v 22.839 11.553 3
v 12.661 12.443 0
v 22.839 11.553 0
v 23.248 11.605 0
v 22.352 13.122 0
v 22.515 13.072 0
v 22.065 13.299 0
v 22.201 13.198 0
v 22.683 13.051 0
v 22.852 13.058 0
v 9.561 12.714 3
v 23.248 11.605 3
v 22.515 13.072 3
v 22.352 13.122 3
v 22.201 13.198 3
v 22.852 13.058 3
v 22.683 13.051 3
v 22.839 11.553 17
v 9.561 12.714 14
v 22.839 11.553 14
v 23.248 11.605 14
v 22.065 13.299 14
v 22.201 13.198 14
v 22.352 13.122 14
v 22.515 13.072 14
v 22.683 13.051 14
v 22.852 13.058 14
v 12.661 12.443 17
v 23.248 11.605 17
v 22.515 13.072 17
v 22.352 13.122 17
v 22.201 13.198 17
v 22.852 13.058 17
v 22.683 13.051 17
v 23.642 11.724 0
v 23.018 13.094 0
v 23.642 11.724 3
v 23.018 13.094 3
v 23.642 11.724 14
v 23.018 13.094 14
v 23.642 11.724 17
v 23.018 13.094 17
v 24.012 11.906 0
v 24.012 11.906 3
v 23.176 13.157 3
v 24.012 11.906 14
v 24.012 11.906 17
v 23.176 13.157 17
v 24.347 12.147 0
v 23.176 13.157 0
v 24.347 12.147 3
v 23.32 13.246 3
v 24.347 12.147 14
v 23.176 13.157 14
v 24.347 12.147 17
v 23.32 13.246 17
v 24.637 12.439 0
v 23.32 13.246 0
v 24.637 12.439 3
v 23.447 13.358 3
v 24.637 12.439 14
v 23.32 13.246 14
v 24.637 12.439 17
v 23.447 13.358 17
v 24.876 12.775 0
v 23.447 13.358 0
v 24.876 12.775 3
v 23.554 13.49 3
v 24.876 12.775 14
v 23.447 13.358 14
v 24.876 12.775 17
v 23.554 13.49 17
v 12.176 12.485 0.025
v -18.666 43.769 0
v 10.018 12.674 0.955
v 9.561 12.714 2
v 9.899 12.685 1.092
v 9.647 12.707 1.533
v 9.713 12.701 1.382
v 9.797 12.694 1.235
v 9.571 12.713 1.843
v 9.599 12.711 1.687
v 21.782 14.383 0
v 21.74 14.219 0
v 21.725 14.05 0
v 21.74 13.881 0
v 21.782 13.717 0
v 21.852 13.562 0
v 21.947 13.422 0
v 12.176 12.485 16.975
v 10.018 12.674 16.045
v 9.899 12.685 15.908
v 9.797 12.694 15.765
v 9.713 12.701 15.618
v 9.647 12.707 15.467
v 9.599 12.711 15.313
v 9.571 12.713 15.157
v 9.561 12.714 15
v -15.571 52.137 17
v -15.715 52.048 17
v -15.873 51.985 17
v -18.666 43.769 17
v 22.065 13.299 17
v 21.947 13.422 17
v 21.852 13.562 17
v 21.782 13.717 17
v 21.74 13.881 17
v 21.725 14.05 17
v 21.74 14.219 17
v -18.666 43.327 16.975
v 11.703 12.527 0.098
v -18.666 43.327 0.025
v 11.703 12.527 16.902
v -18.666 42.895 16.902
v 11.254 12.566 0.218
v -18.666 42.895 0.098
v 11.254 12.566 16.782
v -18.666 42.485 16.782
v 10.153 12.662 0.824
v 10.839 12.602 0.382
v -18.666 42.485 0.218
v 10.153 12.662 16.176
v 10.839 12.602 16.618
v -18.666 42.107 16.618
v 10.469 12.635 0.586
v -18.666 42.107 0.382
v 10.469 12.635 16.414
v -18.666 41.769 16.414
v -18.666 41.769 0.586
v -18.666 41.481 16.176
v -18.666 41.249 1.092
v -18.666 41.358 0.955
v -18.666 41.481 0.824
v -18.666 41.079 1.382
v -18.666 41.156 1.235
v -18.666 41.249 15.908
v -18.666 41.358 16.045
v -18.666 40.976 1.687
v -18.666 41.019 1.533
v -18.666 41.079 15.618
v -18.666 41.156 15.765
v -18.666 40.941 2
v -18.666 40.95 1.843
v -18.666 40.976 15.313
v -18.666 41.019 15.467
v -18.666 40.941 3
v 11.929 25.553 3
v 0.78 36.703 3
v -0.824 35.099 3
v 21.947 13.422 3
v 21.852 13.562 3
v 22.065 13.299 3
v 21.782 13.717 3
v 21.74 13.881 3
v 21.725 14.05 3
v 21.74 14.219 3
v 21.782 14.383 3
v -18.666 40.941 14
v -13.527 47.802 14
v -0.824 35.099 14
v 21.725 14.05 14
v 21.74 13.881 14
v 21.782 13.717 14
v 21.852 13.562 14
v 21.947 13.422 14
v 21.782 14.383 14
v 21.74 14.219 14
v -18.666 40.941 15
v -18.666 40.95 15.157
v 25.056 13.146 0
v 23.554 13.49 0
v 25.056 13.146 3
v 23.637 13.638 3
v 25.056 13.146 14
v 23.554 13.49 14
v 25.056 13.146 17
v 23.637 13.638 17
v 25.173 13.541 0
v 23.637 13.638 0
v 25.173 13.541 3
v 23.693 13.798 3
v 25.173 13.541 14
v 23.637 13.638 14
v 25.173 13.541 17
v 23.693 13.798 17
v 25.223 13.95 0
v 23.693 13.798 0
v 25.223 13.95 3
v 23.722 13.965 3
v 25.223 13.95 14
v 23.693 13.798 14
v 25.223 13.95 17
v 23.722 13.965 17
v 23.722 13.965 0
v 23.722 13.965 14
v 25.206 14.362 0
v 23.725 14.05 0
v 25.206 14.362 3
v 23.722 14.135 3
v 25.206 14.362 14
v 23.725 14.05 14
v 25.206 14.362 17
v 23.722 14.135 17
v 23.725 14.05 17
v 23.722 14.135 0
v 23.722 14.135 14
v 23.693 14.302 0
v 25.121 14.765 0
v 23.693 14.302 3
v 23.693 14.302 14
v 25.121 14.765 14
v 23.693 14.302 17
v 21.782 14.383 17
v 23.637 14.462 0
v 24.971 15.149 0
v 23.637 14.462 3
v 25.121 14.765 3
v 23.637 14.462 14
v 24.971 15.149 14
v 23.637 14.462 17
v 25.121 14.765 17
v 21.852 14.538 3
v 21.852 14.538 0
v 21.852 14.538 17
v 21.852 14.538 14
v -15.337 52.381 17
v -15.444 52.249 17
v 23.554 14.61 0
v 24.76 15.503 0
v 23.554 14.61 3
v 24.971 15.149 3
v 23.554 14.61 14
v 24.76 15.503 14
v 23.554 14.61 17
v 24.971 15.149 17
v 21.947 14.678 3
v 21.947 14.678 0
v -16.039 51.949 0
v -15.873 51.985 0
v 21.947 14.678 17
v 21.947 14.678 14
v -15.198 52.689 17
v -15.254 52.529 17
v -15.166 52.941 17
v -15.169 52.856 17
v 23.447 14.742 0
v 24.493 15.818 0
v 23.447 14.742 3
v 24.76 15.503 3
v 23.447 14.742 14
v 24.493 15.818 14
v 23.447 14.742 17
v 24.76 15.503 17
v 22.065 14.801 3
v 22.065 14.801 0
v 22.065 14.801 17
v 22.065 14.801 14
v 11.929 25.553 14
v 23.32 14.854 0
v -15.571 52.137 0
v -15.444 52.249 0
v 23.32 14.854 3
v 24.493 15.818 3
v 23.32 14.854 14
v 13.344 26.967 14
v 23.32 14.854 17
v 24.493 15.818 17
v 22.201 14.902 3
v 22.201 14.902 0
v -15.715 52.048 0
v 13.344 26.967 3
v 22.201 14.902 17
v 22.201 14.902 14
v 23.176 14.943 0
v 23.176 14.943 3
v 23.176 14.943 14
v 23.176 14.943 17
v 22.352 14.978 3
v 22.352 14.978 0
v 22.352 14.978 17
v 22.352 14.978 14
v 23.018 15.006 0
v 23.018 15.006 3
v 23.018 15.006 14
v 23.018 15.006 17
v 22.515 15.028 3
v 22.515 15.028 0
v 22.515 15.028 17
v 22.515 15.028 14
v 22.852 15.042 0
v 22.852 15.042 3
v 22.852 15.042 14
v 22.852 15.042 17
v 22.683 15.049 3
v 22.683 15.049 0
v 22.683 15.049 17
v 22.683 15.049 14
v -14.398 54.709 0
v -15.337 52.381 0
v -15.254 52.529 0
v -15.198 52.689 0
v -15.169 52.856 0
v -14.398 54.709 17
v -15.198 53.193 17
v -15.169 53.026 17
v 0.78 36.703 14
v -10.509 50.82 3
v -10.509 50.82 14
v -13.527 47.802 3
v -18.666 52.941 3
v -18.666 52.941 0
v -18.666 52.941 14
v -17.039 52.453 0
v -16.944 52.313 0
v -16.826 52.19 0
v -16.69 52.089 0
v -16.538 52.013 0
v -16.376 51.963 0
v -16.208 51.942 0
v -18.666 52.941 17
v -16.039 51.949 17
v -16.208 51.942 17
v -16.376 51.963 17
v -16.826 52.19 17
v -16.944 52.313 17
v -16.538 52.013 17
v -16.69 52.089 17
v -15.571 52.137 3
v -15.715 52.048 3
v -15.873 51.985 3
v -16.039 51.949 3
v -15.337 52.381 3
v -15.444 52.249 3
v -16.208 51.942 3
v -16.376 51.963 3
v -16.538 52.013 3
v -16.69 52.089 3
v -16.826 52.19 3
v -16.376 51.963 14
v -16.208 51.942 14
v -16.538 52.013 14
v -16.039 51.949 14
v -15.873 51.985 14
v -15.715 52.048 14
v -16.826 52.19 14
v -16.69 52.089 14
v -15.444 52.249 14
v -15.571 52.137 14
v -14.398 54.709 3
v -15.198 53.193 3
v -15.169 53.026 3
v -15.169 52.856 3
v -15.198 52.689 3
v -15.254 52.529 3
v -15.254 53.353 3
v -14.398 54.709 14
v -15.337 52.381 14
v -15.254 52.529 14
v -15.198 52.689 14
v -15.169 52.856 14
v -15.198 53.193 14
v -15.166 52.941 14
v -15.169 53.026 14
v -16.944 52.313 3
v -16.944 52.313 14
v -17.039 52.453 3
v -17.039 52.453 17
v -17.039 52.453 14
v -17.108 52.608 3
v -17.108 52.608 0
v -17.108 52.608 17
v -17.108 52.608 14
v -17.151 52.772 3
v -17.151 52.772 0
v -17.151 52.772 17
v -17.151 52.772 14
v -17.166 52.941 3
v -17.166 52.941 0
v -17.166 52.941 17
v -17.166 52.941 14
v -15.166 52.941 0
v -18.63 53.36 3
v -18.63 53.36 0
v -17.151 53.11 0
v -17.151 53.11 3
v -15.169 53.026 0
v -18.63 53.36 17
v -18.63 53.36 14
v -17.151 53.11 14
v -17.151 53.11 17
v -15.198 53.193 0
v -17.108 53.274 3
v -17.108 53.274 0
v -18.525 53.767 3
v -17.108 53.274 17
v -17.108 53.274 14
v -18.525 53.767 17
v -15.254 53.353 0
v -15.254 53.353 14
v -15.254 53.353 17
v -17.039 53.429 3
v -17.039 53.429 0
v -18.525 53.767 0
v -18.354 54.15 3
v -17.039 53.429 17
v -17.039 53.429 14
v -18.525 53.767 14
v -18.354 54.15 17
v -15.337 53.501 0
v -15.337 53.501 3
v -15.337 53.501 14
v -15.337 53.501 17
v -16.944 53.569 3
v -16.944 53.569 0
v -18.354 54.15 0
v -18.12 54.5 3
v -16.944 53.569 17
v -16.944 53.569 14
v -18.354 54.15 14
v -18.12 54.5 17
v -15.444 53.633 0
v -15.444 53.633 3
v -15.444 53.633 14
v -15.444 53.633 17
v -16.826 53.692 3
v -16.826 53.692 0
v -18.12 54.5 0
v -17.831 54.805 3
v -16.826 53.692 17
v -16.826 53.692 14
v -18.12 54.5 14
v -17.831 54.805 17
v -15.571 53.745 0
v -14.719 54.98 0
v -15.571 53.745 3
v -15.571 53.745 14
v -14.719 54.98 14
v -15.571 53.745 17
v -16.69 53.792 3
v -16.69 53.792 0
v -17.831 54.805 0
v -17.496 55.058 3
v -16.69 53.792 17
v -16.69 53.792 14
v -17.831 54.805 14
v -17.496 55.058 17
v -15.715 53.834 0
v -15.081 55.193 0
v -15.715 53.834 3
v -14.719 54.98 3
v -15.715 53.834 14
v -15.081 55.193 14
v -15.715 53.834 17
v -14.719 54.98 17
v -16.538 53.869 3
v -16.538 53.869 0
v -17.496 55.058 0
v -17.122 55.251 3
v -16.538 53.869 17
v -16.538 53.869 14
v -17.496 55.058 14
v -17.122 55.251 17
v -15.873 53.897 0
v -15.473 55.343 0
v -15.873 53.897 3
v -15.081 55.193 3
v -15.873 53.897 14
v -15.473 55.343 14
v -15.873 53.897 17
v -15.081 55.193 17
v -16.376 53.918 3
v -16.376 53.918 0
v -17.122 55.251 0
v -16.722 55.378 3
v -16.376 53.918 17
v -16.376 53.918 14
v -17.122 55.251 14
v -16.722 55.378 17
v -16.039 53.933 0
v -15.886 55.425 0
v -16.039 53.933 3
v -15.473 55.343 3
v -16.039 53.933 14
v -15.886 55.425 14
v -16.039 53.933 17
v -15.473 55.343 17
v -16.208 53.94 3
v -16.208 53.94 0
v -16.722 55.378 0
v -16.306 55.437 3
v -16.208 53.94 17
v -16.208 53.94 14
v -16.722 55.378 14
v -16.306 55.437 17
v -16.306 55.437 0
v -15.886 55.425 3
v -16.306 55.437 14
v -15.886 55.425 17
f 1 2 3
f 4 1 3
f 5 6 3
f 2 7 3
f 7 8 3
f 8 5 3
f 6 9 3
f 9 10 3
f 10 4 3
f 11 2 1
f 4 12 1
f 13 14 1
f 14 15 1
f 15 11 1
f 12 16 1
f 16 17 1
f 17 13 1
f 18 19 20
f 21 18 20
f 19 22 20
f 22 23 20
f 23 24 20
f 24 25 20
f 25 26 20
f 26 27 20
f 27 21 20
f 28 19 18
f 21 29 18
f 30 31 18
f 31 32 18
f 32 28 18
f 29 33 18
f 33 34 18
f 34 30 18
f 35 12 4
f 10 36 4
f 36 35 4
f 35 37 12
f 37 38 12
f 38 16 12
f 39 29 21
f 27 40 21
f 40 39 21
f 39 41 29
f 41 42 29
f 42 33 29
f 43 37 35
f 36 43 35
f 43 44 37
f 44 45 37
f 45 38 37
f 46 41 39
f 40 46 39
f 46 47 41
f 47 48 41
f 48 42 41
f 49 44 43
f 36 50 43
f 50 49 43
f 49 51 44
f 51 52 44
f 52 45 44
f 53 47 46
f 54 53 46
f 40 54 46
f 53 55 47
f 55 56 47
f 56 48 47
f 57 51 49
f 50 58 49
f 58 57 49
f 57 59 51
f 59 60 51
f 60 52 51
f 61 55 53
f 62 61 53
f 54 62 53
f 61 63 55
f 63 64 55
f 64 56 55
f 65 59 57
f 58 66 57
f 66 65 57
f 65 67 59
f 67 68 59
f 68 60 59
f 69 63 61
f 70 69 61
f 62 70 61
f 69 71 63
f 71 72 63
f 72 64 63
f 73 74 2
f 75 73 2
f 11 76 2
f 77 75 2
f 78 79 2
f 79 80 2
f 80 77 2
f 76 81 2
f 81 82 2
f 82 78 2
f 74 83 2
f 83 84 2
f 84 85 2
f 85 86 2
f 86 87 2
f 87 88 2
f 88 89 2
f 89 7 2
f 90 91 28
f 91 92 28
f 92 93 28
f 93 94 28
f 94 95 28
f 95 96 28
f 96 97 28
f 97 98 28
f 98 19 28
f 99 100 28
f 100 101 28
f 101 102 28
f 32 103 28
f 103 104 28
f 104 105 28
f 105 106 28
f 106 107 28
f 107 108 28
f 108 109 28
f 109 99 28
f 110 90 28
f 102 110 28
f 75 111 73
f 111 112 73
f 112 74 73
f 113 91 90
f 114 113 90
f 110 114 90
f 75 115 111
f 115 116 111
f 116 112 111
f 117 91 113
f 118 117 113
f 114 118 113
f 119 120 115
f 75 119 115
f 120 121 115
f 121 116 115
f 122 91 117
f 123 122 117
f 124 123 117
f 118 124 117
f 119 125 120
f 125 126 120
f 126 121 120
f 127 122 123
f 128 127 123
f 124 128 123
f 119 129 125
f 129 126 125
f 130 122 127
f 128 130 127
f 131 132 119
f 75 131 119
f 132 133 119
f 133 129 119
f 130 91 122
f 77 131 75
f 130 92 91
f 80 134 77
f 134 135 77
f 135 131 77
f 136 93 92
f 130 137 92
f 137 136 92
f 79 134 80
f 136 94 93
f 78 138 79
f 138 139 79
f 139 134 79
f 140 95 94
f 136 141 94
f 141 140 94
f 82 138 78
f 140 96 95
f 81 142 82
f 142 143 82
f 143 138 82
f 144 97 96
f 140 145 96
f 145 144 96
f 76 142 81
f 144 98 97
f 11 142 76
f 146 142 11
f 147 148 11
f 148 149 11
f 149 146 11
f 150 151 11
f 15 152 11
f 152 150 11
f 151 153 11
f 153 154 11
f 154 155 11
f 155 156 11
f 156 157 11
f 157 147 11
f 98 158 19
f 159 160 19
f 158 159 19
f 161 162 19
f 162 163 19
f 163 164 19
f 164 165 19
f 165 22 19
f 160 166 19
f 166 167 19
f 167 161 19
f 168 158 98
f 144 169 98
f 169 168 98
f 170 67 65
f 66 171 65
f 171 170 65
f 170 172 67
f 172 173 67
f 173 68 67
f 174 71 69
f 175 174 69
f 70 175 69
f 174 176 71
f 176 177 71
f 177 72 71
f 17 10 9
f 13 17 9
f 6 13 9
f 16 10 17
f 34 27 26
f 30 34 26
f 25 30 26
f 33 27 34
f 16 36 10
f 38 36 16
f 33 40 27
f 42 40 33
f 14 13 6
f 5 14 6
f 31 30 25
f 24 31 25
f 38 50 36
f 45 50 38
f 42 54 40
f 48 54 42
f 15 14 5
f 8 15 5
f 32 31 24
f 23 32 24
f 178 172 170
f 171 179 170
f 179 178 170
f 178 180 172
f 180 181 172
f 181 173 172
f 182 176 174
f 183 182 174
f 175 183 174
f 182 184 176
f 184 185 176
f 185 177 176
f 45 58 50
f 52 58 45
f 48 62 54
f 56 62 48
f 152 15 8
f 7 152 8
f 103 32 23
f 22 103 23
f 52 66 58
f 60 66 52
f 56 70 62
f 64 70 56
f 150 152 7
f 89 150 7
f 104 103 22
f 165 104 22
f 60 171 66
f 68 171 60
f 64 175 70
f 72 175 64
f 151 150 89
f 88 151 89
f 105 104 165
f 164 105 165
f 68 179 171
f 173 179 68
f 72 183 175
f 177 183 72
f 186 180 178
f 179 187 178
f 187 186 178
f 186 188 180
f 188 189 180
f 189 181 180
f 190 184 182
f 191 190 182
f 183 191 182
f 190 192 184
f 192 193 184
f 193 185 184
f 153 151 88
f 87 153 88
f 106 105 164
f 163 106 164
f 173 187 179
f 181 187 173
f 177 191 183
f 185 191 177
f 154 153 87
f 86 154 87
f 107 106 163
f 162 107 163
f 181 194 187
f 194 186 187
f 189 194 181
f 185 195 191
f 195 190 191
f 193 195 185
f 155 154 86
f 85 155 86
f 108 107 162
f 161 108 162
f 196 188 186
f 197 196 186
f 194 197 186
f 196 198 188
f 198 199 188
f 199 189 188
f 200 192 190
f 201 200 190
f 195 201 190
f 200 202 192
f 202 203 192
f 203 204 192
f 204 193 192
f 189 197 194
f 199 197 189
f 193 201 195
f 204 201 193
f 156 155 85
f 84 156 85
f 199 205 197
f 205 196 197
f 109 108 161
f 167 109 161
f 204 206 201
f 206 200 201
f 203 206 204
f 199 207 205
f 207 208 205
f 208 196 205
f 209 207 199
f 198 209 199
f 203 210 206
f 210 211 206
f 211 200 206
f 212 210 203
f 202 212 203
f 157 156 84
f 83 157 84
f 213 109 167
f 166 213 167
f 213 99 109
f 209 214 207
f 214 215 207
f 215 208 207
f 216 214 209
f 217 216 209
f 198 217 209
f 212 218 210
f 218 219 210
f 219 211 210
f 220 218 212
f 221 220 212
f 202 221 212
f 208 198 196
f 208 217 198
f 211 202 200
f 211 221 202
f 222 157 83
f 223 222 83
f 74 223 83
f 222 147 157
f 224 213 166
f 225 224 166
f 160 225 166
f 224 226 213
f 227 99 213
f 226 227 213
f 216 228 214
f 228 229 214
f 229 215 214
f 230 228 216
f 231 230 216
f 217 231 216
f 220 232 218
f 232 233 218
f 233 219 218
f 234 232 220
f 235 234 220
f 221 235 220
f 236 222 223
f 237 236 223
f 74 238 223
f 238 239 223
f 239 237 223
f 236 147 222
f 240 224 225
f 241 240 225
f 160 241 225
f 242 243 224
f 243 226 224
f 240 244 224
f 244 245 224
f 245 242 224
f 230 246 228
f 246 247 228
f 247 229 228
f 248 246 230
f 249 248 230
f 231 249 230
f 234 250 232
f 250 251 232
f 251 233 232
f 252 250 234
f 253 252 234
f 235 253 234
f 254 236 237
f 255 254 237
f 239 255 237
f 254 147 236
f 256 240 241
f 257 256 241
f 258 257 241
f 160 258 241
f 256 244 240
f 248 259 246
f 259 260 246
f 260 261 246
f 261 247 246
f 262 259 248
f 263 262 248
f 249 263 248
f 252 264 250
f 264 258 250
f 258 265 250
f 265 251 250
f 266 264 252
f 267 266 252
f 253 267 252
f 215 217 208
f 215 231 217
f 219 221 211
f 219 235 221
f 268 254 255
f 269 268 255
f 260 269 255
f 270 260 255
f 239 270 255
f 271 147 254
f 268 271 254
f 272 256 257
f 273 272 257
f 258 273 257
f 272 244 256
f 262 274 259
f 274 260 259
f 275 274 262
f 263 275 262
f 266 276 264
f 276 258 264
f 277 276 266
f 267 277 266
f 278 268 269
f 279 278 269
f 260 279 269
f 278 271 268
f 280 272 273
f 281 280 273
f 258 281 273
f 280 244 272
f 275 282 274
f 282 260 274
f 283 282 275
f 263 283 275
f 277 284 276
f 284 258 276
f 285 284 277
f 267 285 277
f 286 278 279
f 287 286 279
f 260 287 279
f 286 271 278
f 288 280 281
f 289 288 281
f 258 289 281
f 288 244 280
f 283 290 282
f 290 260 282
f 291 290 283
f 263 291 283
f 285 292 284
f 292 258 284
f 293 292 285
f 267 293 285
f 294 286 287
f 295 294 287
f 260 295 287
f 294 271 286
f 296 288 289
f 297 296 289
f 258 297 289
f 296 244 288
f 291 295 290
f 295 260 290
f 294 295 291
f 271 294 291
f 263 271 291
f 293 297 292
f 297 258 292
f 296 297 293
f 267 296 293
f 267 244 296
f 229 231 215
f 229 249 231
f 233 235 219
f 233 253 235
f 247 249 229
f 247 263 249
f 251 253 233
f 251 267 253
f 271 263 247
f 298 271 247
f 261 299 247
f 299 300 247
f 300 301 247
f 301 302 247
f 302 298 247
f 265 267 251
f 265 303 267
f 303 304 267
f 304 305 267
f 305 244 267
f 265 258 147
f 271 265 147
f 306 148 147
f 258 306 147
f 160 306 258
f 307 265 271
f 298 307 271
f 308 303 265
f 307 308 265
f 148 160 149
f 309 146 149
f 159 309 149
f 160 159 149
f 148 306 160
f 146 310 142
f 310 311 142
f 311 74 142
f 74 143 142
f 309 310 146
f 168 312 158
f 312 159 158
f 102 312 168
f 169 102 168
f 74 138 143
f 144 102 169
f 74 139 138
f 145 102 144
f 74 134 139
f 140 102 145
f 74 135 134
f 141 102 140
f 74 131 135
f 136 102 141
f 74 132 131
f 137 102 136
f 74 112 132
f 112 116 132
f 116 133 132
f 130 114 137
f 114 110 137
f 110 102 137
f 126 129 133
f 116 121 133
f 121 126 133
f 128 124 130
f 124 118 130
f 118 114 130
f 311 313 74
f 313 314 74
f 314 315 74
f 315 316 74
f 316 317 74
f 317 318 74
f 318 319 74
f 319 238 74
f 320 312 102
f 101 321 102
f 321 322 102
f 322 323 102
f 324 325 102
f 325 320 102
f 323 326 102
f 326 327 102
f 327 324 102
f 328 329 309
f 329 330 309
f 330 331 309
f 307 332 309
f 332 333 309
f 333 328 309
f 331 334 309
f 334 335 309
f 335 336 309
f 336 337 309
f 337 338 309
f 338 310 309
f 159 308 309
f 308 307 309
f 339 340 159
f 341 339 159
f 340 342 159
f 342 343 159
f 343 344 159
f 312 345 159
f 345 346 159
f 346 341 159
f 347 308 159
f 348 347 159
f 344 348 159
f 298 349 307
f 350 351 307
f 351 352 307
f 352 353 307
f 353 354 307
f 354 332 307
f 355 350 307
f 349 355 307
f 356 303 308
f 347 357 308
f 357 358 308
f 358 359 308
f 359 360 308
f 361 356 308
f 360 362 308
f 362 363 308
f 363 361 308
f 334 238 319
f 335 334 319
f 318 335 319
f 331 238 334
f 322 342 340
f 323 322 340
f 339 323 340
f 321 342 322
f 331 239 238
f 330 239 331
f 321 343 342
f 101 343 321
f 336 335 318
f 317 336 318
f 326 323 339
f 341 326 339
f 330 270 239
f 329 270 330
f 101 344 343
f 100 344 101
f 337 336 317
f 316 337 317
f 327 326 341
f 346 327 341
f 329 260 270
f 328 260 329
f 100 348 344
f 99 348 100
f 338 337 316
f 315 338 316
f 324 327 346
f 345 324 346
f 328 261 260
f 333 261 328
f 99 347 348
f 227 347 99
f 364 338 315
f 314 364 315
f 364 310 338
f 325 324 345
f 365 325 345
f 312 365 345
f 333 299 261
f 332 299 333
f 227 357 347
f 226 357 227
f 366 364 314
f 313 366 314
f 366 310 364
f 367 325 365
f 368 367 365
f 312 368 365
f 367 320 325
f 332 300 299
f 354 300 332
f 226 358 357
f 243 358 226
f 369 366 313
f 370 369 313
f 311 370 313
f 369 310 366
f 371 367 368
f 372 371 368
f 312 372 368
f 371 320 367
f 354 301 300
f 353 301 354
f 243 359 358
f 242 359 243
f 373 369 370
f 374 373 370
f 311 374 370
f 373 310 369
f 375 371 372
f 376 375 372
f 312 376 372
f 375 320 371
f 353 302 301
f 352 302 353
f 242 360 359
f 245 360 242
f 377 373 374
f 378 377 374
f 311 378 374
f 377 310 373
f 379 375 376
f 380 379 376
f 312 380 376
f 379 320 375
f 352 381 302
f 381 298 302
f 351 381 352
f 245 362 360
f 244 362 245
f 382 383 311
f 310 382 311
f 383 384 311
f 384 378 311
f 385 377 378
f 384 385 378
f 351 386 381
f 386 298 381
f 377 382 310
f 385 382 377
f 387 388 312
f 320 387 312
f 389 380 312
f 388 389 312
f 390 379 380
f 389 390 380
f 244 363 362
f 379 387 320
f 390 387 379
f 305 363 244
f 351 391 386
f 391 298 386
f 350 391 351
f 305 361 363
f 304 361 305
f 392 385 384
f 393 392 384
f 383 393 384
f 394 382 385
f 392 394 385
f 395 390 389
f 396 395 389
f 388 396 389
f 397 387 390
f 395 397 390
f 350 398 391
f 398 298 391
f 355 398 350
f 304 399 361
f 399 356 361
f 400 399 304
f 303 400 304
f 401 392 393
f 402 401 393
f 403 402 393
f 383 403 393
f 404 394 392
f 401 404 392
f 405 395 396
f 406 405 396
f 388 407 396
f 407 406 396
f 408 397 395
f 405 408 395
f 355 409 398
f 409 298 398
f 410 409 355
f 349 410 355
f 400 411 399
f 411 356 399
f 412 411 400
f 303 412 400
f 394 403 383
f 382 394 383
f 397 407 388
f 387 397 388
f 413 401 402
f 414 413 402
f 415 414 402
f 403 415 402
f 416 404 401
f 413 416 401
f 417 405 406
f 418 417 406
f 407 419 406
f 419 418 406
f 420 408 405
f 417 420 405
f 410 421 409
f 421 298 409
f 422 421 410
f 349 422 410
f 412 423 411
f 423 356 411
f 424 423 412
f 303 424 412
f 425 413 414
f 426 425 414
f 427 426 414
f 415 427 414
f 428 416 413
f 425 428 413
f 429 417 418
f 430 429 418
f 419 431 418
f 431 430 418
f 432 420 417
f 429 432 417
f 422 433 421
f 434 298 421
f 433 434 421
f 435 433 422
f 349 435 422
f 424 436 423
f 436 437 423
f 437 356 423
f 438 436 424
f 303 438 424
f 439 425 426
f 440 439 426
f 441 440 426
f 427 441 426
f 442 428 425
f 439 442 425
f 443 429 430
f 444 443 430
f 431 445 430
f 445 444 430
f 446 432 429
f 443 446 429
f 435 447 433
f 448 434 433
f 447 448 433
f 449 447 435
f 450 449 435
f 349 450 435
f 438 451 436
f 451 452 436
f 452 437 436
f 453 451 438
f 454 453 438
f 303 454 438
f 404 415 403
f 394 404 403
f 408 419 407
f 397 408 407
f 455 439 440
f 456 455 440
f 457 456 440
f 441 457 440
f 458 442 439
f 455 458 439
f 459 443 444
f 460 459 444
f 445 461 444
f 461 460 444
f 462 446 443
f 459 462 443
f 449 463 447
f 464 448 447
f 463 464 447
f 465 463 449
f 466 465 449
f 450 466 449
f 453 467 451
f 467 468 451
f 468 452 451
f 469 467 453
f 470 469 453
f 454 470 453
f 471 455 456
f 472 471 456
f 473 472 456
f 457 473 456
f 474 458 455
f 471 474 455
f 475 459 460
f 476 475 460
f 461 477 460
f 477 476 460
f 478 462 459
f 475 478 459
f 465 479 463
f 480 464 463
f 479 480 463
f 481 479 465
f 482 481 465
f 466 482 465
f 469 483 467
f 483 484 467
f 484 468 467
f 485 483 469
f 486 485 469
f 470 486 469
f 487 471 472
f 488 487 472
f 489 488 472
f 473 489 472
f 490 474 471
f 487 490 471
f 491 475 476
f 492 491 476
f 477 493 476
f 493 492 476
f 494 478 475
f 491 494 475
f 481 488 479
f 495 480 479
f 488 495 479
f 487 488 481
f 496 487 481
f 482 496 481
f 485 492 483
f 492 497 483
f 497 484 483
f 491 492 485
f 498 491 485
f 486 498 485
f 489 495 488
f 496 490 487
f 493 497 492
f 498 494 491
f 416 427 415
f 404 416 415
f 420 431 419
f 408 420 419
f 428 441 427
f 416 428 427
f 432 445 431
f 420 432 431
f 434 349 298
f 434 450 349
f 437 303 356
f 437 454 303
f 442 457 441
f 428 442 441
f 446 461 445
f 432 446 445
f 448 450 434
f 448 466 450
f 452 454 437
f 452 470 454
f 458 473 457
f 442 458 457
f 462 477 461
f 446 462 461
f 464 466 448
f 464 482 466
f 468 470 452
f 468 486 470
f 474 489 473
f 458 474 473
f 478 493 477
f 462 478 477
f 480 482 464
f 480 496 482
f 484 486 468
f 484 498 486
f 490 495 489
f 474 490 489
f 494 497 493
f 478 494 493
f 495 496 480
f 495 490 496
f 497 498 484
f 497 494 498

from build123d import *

# Parameters (mm, degrees)
SKETCH1_R           = 1
BOSS_EXTRUDE1_DEPTH = 17
SKETCH2_W           = 17.330300869
SKETCH2_H           = 11
CUT_EXTRUDE1_DEPTH  = 17
SKETCH3_W           = 11
SKETCH3_H           = 11.611712882
CUT_EXTRUDE2_DEPTH  = 64.45501819
SKETCH4_W           = 11
SKETCH4_H           = 15.767820388
BOSS_EXTRUDE2_DEPTH = 2
FILLET1_R           = 2


with BuildPart() as part:
    # Sketch1 → Boss-Extrude1 (new body)
    with BuildSketch(Plane.XY):
        with BuildLine():
            Line((-18.665536599, 40.94089641), (-5.023709167, 27.299068978))
            Line((-5.023709167, 27.299068978), (9.56111442, 12.714245391))
            Line((9.56111442, 12.714245391), (22.179931818, 11.610241922))
            Line((22.179931818, 11.610241922), (22.83879138, 11.552599179))
            ThreePointArc((22.83879138, 11.552599179), (25.056154475, 13.145984205), (24.49310332, 15.817790397))
            Line((24.49310332, 15.817790397), (5.517505351, 34.793388366))
            Line((5.517505351, 34.793388366), (-14.397769646, 54.708663363))
            ThreePointArc((-14.397769646, 54.708663363), (-17.12224518, 55.250595241), (-18.665536599, 52.94089641))
            Line((-18.665536599, 52.94089641), (-18.665536599, 40.94089641))
        make_face()
        with Locations((22.725336367, 14.050023445)):
            Circle(SKETCH1_R, mode=Mode.SUBTRACT)
        with Locations((-16.165536599, 52.94089641)):
            Circle(SKETCH1_R, mode=Mode.SUBTRACT)
    extrude(amount=BOSS_EXTRUDE1_DEPTH)

    # Sketch2 → Cut-Extrude1 (cut)
    with BuildSketch(Plane(origin=(20.155446858, 20.155446858, 0), x_dir=(0.7071067811865516, -0.7071067811865436, 0), z_dir=(0.7071067811865436, 0.7071067811865516, 0))):
        Polygon((-22.401268179, -3), (-25.401268179, -3), (-25.401268179, -14), (31.236683476, -14), (31.236683476, -3), align=None)
        with Locations((-52.031204615, -8.5)):
            Rectangle(SKETCH2_W, SKETCH2_H)
    extrude(amount=-CUT_EXTRUDE1_DEPTH, mode=Mode.SUBTRACT)

    # Sketch3 → Cut-Extrude2 (cut, through all)
    with BuildSketch(Plane(origin=(-30.664430984, 30.664430984, 0), x_dir=(0, 0, 1), z_dir=(-0.7071067811865515, 0.7071067811865437, 0))):
        with Locations((8.5, 18.430482909)):
            Rectangle(SKETCH3_W, SKETCH3_H)
    extrude(amount=-CUT_EXTRUDE2_DEPTH, mode=Mode.SUBTRACT)

    # Sketch4 → Boss-Extrude2 (add)
    with BuildSketch(Plane(origin=(20.155446858, 20.155446858, 0), x_dir=(0, 0, -1), z_dir=(0.7071067811865435, 0.7071067811865516, 0))):
        with Locations((-8.5, 17.517357985)):
            Rectangle(SKETCH4_W, SKETCH4_H)
    extrude(amount=-BOSS_EXTRUDE2_DEPTH)

    # Fillet1
    fillet1_edges = [part.edges().sort_by_distance(p)[0] for p in [
        (-4.55221109, 26.827570901, 17),
        (-4.55221109, 26.827570901, 0),
    ]]
    fillet(fillet1_edges, radius=FILLET1_R)


solid = part.part
